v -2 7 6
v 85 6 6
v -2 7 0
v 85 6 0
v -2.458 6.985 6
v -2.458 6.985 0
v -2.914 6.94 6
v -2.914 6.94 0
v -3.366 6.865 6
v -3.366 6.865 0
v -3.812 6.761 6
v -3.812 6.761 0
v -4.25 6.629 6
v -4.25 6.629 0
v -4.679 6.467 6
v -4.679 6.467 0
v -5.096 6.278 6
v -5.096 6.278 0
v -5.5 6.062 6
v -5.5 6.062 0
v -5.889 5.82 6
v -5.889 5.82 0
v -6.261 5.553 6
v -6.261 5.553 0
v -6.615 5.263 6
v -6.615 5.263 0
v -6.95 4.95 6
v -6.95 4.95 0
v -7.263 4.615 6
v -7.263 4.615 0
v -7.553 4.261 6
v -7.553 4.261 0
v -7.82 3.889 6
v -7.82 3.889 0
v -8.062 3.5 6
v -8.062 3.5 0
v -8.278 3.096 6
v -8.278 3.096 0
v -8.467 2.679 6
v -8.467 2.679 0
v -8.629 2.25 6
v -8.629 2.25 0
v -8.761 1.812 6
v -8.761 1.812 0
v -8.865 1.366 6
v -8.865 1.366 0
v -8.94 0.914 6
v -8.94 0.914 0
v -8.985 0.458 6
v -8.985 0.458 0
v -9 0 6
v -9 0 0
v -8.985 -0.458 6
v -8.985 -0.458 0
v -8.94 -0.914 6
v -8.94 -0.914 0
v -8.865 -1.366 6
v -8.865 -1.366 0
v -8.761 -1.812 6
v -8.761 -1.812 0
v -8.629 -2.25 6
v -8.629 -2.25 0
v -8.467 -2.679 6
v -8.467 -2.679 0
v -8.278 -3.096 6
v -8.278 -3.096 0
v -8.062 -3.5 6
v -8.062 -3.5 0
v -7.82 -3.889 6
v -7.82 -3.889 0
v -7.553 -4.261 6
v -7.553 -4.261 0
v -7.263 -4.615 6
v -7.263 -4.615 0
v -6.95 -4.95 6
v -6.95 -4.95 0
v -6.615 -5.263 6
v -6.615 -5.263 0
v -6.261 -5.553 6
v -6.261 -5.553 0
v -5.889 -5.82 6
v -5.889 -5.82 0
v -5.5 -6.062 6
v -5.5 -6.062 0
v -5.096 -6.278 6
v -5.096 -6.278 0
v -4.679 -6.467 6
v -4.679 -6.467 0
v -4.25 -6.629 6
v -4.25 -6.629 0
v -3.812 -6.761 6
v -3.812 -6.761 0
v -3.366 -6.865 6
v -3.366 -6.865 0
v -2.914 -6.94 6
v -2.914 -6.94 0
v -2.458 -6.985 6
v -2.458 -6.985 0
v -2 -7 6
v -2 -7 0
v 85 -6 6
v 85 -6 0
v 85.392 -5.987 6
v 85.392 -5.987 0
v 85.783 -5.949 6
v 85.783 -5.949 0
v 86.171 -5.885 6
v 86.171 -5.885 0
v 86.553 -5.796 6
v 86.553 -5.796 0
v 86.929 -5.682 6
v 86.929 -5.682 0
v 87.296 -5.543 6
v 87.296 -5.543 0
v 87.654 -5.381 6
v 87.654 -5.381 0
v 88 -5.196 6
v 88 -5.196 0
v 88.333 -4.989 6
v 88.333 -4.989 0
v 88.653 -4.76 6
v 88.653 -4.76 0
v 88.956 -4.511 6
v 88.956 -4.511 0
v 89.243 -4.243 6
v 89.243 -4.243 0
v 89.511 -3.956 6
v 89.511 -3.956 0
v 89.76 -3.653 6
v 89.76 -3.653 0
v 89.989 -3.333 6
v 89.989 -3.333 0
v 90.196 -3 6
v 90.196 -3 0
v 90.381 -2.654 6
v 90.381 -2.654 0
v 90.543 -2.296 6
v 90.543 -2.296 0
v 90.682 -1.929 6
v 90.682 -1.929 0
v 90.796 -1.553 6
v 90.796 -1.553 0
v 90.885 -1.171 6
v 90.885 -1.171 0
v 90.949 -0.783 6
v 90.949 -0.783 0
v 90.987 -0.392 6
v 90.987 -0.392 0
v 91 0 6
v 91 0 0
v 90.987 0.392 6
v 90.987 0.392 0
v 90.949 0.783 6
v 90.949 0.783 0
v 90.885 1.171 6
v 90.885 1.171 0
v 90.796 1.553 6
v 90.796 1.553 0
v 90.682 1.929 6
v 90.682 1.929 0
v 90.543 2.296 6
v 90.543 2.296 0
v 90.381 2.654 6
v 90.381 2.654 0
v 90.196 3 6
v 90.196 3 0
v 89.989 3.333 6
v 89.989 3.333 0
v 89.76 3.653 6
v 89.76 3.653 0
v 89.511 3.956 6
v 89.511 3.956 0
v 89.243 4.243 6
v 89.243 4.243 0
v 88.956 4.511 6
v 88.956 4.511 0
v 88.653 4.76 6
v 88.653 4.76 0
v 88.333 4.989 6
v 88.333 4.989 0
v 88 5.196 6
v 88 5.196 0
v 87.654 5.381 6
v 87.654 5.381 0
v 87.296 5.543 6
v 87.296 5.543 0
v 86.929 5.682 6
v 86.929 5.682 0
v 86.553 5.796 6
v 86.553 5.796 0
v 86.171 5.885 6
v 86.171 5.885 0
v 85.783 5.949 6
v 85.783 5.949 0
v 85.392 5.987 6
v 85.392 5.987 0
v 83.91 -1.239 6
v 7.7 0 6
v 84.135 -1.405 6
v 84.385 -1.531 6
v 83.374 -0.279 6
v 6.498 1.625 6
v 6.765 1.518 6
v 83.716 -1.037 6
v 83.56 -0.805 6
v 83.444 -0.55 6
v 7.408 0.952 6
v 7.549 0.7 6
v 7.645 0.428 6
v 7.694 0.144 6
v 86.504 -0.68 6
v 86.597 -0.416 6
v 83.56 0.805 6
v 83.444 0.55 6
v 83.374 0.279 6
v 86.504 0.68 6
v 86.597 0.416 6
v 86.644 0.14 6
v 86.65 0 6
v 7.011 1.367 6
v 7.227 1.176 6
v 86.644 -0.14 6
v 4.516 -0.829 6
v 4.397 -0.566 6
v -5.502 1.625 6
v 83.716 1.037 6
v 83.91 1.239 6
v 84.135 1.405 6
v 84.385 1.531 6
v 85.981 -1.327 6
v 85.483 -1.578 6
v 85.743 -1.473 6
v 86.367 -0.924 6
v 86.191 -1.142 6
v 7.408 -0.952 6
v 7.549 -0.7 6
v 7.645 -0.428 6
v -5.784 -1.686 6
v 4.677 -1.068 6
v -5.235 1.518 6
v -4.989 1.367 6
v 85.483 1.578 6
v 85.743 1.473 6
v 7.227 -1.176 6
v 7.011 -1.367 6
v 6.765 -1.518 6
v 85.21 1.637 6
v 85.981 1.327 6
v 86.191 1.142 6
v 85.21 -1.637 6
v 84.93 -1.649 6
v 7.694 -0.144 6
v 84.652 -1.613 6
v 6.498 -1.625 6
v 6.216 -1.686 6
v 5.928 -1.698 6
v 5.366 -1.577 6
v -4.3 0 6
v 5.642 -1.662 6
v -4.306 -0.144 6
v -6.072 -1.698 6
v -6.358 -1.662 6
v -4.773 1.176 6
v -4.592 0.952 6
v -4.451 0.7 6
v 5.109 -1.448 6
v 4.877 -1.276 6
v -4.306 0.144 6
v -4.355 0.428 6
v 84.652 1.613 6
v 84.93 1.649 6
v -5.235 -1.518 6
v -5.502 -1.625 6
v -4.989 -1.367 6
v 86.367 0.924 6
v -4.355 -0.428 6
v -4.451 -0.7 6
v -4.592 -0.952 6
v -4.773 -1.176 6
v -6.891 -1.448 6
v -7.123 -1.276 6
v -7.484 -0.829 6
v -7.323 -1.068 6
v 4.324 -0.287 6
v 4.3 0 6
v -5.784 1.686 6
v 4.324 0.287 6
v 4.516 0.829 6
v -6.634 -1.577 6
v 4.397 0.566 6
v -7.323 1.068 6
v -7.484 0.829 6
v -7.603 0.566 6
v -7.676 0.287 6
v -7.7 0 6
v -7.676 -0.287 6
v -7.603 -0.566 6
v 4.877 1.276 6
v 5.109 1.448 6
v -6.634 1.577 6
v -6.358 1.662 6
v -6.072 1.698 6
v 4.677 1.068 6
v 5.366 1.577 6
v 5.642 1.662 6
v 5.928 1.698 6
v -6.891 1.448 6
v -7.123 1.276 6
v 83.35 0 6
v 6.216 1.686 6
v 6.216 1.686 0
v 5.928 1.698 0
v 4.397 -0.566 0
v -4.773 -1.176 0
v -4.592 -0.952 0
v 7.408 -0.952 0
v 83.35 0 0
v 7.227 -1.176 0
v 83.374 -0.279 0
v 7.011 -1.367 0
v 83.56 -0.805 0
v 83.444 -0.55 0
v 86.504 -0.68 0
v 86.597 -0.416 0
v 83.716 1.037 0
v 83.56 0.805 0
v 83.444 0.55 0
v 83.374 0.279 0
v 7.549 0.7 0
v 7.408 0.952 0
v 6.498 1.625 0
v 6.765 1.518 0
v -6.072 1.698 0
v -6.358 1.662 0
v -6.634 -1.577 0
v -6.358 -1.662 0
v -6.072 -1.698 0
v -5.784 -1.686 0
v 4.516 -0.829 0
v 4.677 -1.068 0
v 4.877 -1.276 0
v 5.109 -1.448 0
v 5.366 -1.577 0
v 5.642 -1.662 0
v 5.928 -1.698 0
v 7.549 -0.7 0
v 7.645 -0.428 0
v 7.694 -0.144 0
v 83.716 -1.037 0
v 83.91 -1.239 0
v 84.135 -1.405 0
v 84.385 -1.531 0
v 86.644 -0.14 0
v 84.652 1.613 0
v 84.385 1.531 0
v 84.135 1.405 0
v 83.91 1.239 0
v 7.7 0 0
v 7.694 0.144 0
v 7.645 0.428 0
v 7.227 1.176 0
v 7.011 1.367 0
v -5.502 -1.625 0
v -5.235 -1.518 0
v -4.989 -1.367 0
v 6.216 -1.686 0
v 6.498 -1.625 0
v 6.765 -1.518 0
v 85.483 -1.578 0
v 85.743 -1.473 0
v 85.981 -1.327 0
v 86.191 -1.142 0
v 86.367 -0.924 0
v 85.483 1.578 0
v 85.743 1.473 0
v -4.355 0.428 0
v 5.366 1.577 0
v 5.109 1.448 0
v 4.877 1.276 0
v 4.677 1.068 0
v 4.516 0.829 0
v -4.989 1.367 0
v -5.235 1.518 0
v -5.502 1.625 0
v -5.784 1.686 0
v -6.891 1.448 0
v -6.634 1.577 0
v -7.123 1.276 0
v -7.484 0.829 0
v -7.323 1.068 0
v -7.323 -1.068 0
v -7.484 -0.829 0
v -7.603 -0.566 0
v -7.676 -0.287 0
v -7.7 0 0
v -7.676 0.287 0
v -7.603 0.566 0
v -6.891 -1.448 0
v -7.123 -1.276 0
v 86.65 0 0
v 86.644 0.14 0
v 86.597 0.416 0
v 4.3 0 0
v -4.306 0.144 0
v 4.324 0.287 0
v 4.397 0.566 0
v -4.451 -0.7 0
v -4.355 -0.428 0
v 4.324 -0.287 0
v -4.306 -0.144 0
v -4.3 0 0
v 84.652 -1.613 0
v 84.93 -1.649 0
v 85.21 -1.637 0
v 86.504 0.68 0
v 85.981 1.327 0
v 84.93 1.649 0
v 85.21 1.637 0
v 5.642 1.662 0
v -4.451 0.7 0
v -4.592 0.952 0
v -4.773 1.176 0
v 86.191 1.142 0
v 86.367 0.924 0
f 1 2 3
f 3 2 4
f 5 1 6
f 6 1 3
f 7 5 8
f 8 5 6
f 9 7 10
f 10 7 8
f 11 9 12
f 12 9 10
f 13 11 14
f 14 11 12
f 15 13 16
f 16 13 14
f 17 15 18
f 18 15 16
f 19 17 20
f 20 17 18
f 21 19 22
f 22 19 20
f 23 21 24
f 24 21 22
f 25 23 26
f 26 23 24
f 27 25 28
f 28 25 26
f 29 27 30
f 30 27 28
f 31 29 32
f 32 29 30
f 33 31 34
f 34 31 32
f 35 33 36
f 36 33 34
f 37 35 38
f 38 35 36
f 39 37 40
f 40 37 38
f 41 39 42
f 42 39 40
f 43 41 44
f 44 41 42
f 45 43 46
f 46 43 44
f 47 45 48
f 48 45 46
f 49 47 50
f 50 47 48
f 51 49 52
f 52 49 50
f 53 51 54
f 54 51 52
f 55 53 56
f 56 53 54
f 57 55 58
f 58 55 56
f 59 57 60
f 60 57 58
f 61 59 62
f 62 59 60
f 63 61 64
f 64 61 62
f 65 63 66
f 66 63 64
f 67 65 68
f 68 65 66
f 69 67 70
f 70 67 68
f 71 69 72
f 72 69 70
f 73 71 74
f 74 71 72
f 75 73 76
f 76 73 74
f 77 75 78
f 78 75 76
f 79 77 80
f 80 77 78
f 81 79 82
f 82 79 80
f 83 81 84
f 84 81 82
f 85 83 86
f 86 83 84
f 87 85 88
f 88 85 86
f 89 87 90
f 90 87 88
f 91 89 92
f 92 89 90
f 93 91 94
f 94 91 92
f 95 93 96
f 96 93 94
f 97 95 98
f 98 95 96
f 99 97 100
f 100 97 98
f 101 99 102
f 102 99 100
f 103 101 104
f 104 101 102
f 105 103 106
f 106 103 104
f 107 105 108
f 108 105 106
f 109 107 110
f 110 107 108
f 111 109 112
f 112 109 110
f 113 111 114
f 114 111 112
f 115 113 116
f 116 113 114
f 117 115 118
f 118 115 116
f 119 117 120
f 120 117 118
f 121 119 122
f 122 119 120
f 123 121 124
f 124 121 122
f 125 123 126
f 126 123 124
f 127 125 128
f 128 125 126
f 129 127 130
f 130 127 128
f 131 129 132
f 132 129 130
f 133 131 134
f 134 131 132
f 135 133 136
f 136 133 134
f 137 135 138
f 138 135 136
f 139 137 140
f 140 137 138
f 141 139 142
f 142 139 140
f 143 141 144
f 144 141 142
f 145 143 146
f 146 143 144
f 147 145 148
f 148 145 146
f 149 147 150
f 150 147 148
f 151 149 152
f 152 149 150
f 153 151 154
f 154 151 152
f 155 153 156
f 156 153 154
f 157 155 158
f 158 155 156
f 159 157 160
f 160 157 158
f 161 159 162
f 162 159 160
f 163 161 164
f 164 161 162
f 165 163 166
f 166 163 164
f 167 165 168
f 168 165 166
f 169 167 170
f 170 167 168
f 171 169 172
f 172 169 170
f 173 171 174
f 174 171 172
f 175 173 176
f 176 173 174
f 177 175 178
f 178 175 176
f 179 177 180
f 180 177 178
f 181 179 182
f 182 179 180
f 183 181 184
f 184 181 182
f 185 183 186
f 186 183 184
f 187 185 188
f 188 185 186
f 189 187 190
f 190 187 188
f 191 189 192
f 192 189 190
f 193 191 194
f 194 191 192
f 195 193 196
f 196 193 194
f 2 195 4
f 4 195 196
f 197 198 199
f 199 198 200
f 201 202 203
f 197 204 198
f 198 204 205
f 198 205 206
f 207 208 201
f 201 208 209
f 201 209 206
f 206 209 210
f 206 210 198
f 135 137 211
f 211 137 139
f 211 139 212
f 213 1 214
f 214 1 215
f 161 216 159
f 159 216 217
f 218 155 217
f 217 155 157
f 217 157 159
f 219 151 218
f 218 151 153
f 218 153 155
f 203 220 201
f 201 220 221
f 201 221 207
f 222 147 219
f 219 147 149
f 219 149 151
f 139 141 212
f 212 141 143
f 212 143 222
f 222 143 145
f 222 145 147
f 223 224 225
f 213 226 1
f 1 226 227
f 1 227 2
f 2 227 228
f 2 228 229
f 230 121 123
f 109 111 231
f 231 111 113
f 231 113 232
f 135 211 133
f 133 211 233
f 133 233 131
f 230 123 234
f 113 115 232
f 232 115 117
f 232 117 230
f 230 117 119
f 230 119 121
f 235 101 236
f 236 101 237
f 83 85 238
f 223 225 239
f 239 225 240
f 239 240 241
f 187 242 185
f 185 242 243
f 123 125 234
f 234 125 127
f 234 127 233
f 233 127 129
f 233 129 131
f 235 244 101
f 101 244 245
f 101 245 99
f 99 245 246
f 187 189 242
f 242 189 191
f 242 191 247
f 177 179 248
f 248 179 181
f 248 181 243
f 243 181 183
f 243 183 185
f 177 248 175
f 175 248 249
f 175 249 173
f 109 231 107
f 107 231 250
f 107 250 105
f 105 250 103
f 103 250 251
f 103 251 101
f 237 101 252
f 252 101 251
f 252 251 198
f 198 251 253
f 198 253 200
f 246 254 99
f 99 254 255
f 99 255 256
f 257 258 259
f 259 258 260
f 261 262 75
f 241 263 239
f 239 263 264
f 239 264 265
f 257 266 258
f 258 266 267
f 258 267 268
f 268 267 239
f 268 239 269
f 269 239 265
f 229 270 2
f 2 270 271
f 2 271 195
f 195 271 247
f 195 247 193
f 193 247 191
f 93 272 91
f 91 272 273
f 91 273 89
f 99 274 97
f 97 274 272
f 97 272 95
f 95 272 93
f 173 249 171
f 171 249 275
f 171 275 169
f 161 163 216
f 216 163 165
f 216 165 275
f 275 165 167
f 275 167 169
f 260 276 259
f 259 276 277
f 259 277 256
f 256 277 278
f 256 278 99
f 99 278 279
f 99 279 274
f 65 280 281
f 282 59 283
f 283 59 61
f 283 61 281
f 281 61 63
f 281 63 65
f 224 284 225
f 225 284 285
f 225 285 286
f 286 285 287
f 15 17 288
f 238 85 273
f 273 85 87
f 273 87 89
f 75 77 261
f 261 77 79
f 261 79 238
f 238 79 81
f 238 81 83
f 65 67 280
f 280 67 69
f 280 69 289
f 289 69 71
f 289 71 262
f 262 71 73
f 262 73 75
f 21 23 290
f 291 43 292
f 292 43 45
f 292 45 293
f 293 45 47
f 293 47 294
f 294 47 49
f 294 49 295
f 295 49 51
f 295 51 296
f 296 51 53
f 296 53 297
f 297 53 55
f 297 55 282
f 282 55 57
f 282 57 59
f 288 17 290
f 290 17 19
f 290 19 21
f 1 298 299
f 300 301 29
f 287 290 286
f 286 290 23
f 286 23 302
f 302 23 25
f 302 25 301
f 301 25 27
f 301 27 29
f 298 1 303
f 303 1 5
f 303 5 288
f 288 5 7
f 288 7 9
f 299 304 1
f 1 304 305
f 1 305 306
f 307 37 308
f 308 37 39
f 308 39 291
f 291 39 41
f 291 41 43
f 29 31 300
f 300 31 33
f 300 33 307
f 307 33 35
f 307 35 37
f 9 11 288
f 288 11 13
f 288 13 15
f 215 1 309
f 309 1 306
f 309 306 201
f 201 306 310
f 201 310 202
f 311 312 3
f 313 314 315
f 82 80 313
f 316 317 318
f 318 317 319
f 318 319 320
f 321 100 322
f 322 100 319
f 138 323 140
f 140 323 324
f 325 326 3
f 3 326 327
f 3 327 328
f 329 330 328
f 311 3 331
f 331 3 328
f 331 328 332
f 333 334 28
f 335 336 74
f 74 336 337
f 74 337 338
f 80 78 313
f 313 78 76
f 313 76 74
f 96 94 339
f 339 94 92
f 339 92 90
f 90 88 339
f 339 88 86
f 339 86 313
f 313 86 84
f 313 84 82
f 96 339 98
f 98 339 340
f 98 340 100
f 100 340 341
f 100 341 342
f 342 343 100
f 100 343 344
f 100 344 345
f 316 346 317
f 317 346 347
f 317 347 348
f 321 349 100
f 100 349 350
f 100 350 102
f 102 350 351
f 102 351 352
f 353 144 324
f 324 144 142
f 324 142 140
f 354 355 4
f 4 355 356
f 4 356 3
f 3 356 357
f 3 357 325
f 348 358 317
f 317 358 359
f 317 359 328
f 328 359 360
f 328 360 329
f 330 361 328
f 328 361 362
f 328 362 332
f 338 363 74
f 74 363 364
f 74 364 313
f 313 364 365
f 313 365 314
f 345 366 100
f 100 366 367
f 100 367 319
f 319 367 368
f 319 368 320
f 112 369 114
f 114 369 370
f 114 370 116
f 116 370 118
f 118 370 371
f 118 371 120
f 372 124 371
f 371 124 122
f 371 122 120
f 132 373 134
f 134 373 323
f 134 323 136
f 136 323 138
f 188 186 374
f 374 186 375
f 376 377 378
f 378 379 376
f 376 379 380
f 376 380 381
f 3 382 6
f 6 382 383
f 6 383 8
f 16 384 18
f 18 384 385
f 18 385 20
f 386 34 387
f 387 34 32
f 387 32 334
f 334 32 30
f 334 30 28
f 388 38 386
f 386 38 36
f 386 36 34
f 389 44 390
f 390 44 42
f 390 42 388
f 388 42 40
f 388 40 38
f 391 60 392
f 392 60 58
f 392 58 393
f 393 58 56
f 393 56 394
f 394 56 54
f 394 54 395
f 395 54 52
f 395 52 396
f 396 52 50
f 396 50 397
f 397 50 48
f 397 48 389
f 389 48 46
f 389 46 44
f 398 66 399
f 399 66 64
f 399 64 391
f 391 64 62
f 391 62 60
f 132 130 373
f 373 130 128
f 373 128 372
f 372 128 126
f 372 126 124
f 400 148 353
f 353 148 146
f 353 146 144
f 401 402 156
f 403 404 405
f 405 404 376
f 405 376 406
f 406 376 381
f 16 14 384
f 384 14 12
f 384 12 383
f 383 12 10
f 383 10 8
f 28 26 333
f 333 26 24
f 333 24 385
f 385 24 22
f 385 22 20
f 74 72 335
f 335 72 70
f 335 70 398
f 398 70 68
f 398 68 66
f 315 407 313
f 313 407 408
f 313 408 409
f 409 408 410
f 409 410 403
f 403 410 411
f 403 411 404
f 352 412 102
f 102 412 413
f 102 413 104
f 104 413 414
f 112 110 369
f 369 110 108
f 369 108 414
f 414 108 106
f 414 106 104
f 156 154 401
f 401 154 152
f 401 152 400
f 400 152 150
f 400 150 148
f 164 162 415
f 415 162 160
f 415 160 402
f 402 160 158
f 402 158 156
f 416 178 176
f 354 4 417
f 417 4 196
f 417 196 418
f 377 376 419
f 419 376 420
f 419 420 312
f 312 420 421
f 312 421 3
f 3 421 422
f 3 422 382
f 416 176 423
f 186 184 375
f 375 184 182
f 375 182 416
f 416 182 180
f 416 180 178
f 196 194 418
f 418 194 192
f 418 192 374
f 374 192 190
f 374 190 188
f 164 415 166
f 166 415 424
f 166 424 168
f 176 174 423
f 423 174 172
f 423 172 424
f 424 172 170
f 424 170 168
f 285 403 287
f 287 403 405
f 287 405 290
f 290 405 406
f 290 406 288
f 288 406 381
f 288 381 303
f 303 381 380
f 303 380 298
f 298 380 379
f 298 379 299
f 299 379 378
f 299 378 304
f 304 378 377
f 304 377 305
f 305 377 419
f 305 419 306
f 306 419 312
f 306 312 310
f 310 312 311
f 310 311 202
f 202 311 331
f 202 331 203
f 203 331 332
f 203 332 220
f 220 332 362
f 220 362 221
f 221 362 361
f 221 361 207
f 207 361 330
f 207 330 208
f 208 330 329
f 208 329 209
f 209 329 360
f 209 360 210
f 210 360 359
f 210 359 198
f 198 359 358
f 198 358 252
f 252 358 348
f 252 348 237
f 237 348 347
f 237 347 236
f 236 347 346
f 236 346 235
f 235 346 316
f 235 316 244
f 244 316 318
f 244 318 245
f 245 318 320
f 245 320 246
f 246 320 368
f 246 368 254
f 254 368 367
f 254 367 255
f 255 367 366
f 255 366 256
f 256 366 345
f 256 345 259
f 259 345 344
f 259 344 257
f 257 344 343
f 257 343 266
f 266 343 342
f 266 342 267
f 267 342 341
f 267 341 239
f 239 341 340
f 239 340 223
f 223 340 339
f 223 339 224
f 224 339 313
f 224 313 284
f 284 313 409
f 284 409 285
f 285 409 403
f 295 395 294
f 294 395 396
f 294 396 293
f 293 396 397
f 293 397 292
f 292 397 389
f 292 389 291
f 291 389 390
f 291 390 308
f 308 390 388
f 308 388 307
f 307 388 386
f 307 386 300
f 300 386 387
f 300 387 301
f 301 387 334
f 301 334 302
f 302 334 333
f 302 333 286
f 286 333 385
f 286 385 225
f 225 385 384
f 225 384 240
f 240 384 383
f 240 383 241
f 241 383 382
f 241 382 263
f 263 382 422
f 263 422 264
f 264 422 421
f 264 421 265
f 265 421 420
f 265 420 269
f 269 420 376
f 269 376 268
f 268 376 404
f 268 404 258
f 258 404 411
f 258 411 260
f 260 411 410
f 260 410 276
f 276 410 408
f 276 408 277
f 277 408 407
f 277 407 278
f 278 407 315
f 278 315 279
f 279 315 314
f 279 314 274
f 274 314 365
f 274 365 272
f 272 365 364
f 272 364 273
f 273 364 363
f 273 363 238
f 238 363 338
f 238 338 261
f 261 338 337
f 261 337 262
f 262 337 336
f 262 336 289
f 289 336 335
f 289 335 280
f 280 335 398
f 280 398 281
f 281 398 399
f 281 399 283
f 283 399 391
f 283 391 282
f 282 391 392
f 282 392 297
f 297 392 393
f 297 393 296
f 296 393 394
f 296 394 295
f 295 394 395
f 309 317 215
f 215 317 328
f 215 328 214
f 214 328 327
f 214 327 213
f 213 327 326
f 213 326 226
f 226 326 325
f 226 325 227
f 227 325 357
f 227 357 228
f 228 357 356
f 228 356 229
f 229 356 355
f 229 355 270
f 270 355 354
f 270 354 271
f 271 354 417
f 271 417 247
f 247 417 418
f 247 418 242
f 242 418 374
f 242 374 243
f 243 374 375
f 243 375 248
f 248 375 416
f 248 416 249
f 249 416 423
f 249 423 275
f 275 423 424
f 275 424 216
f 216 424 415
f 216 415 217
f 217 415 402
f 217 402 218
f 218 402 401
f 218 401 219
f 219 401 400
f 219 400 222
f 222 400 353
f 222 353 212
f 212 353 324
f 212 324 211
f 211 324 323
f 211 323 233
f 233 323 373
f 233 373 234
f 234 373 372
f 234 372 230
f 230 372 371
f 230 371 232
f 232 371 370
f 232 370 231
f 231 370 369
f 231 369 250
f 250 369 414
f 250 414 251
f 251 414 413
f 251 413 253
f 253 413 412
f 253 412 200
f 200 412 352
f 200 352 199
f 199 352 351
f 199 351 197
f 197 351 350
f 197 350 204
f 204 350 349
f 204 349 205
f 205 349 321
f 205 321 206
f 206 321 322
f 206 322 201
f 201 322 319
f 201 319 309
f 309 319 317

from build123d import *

# Parameters (mm, degrees)
PLATE_DEPTH       = 6
SKETCH2_R         = 1.7
HUB_SCREWS_DEPTH  = 6
SKETCH3_R         = 1.65
KNOB_THREAD_DEPTH = 6


with BuildPart() as part:
    # Sketch1 → Plate (new body)
    with BuildSketch(Plane.XY):
        Polygon((-2, 7), (-2.457821905, 6.985012463), (-2.913683346, 6.94011403), (-3.365632254, 6.865496963), (-3.811733316, 6.761480784), (-4.250076257, 6.628510906), (-4.678784027, 6.467156728), (-5.096020832, 6.278109191), (-5.5, 6.062177826), (-5.888991631, 5.820287286), (-6.261330003, 5.553473382), (-6.615420706, 5.262878652), (-6.949747468, 4.949747468), (-7.262878652, 4.615420706), (-7.553473382, 4.261330003), (-7.820287286, 3.888991631), (-8.062177826, 3.5), (-8.278109191, 3.096020832), (-8.467156728, 2.678784027), (-8.628510906, 2.250076257), (-8.761480784, 1.811733316), (-8.865496963, 1.365632254), (-8.94011403, 0.913683346), (-8.985012463, 0.457821905), (-9, 0), (-8.985012463, -0.457821905), (-8.94011403, -0.913683346), (-8.865496963, -1.365632254), (-8.761480784, -1.811733316), (-8.628510906, -2.250076257), (-8.467156728, -2.678784027), (-8.278109191, -3.096020832), (-8.062177826, -3.5), (-7.820287286, -3.888991631), (-7.553473382, -4.261330003), (-7.262878652, -4.615420706), (-6.949747468, -4.949747468), (-6.615420706, -5.262878652), (-6.261330003, -5.553473382), (-5.888991631, -5.820287286), (-5.5, -6.062177826), (-5.096020832, -6.278109191), (-4.678784027, -6.467156728), (-4.250076257, -6.628510906), (-3.811733316, -6.761480784), (-3.365632254, -6.865496963), (-2.913683346, -6.94011403), (-2.457821905, -6.985012463), (-2, -7), (85, -6), (85.392418775, -5.987153539), (85.783157153, -5.948669168), (86.170541932, -5.884711682), (86.552914271, -5.795554958), (86.928636792, -5.681580777), (87.296100594, -5.543277195), (87.653732141, -5.381236449), (88, -5.196152423), (88.333421398, -4.988817674), (88.652568574, -4.760120042), (88.956074891, -4.511038845), (89.242640687, -4.242640687), (89.511038845, -3.956074891), (89.760120042, -3.652568574), (89.988817674, -3.333421398), (90.196152423, -3), (90.381236449, -2.653732141), (90.543277195, -2.296100594), (90.681580777, -1.928636792), (90.795554958, -1.552914271), (90.884711682, -1.170541932), (90.948669168, -0.783157153), (90.987153539, -0.392418775), (91, 0), (90.987153539, 0.392418775), (90.948669168, 0.783157153), (90.884711682, 1.170541932), (90.795554958, 1.552914271), (90.681580777, 1.928636792), (90.543277195, 2.296100594), (90.381236449, 2.653732141), (90.196152423, 3), (89.988817674, 3.333421398), (89.760120042, 3.652568574), (89.511038845, 3.956074891), (89.242640687, 4.242640687), (88.956074891, 4.511038845), (88.652568574, 4.760120042), (88.333421398, 4.988817674), (88, 5.196152423), (87.653732141, 5.381236449), (87.296100594, 5.543277195), (86.928636792, 5.681580777), (86.552914271, 5.795554958), (86.170541932, 5.884711682), (85.783157153, 5.948669168), (85.392418775, 5.987153539), (85, 6), align=None)
    extrude(amount=PLATE_DEPTH)

    # Sketch2 → Hub_screws (cut)
    with BuildSketch(Plane.XY):
        with Locations((-6, 0)):
            Circle(SKETCH2_R)
        with Locations((6, 0)):
            Circle(SKETCH2_R)
    extrude(amount=HUB_SCREWS_DEPTH, mode=Mode.SUBTRACT)

    # Sketch3 → Knob_thread (cut)
    with BuildSketch(Plane.XY):
        with Locations((85, 0)):
            Circle(SKETCH3_R)
    extrude(amount=KNOB_THREAD_DEPTH, mode=Mode.SUBTRACT)


solid = part.part
